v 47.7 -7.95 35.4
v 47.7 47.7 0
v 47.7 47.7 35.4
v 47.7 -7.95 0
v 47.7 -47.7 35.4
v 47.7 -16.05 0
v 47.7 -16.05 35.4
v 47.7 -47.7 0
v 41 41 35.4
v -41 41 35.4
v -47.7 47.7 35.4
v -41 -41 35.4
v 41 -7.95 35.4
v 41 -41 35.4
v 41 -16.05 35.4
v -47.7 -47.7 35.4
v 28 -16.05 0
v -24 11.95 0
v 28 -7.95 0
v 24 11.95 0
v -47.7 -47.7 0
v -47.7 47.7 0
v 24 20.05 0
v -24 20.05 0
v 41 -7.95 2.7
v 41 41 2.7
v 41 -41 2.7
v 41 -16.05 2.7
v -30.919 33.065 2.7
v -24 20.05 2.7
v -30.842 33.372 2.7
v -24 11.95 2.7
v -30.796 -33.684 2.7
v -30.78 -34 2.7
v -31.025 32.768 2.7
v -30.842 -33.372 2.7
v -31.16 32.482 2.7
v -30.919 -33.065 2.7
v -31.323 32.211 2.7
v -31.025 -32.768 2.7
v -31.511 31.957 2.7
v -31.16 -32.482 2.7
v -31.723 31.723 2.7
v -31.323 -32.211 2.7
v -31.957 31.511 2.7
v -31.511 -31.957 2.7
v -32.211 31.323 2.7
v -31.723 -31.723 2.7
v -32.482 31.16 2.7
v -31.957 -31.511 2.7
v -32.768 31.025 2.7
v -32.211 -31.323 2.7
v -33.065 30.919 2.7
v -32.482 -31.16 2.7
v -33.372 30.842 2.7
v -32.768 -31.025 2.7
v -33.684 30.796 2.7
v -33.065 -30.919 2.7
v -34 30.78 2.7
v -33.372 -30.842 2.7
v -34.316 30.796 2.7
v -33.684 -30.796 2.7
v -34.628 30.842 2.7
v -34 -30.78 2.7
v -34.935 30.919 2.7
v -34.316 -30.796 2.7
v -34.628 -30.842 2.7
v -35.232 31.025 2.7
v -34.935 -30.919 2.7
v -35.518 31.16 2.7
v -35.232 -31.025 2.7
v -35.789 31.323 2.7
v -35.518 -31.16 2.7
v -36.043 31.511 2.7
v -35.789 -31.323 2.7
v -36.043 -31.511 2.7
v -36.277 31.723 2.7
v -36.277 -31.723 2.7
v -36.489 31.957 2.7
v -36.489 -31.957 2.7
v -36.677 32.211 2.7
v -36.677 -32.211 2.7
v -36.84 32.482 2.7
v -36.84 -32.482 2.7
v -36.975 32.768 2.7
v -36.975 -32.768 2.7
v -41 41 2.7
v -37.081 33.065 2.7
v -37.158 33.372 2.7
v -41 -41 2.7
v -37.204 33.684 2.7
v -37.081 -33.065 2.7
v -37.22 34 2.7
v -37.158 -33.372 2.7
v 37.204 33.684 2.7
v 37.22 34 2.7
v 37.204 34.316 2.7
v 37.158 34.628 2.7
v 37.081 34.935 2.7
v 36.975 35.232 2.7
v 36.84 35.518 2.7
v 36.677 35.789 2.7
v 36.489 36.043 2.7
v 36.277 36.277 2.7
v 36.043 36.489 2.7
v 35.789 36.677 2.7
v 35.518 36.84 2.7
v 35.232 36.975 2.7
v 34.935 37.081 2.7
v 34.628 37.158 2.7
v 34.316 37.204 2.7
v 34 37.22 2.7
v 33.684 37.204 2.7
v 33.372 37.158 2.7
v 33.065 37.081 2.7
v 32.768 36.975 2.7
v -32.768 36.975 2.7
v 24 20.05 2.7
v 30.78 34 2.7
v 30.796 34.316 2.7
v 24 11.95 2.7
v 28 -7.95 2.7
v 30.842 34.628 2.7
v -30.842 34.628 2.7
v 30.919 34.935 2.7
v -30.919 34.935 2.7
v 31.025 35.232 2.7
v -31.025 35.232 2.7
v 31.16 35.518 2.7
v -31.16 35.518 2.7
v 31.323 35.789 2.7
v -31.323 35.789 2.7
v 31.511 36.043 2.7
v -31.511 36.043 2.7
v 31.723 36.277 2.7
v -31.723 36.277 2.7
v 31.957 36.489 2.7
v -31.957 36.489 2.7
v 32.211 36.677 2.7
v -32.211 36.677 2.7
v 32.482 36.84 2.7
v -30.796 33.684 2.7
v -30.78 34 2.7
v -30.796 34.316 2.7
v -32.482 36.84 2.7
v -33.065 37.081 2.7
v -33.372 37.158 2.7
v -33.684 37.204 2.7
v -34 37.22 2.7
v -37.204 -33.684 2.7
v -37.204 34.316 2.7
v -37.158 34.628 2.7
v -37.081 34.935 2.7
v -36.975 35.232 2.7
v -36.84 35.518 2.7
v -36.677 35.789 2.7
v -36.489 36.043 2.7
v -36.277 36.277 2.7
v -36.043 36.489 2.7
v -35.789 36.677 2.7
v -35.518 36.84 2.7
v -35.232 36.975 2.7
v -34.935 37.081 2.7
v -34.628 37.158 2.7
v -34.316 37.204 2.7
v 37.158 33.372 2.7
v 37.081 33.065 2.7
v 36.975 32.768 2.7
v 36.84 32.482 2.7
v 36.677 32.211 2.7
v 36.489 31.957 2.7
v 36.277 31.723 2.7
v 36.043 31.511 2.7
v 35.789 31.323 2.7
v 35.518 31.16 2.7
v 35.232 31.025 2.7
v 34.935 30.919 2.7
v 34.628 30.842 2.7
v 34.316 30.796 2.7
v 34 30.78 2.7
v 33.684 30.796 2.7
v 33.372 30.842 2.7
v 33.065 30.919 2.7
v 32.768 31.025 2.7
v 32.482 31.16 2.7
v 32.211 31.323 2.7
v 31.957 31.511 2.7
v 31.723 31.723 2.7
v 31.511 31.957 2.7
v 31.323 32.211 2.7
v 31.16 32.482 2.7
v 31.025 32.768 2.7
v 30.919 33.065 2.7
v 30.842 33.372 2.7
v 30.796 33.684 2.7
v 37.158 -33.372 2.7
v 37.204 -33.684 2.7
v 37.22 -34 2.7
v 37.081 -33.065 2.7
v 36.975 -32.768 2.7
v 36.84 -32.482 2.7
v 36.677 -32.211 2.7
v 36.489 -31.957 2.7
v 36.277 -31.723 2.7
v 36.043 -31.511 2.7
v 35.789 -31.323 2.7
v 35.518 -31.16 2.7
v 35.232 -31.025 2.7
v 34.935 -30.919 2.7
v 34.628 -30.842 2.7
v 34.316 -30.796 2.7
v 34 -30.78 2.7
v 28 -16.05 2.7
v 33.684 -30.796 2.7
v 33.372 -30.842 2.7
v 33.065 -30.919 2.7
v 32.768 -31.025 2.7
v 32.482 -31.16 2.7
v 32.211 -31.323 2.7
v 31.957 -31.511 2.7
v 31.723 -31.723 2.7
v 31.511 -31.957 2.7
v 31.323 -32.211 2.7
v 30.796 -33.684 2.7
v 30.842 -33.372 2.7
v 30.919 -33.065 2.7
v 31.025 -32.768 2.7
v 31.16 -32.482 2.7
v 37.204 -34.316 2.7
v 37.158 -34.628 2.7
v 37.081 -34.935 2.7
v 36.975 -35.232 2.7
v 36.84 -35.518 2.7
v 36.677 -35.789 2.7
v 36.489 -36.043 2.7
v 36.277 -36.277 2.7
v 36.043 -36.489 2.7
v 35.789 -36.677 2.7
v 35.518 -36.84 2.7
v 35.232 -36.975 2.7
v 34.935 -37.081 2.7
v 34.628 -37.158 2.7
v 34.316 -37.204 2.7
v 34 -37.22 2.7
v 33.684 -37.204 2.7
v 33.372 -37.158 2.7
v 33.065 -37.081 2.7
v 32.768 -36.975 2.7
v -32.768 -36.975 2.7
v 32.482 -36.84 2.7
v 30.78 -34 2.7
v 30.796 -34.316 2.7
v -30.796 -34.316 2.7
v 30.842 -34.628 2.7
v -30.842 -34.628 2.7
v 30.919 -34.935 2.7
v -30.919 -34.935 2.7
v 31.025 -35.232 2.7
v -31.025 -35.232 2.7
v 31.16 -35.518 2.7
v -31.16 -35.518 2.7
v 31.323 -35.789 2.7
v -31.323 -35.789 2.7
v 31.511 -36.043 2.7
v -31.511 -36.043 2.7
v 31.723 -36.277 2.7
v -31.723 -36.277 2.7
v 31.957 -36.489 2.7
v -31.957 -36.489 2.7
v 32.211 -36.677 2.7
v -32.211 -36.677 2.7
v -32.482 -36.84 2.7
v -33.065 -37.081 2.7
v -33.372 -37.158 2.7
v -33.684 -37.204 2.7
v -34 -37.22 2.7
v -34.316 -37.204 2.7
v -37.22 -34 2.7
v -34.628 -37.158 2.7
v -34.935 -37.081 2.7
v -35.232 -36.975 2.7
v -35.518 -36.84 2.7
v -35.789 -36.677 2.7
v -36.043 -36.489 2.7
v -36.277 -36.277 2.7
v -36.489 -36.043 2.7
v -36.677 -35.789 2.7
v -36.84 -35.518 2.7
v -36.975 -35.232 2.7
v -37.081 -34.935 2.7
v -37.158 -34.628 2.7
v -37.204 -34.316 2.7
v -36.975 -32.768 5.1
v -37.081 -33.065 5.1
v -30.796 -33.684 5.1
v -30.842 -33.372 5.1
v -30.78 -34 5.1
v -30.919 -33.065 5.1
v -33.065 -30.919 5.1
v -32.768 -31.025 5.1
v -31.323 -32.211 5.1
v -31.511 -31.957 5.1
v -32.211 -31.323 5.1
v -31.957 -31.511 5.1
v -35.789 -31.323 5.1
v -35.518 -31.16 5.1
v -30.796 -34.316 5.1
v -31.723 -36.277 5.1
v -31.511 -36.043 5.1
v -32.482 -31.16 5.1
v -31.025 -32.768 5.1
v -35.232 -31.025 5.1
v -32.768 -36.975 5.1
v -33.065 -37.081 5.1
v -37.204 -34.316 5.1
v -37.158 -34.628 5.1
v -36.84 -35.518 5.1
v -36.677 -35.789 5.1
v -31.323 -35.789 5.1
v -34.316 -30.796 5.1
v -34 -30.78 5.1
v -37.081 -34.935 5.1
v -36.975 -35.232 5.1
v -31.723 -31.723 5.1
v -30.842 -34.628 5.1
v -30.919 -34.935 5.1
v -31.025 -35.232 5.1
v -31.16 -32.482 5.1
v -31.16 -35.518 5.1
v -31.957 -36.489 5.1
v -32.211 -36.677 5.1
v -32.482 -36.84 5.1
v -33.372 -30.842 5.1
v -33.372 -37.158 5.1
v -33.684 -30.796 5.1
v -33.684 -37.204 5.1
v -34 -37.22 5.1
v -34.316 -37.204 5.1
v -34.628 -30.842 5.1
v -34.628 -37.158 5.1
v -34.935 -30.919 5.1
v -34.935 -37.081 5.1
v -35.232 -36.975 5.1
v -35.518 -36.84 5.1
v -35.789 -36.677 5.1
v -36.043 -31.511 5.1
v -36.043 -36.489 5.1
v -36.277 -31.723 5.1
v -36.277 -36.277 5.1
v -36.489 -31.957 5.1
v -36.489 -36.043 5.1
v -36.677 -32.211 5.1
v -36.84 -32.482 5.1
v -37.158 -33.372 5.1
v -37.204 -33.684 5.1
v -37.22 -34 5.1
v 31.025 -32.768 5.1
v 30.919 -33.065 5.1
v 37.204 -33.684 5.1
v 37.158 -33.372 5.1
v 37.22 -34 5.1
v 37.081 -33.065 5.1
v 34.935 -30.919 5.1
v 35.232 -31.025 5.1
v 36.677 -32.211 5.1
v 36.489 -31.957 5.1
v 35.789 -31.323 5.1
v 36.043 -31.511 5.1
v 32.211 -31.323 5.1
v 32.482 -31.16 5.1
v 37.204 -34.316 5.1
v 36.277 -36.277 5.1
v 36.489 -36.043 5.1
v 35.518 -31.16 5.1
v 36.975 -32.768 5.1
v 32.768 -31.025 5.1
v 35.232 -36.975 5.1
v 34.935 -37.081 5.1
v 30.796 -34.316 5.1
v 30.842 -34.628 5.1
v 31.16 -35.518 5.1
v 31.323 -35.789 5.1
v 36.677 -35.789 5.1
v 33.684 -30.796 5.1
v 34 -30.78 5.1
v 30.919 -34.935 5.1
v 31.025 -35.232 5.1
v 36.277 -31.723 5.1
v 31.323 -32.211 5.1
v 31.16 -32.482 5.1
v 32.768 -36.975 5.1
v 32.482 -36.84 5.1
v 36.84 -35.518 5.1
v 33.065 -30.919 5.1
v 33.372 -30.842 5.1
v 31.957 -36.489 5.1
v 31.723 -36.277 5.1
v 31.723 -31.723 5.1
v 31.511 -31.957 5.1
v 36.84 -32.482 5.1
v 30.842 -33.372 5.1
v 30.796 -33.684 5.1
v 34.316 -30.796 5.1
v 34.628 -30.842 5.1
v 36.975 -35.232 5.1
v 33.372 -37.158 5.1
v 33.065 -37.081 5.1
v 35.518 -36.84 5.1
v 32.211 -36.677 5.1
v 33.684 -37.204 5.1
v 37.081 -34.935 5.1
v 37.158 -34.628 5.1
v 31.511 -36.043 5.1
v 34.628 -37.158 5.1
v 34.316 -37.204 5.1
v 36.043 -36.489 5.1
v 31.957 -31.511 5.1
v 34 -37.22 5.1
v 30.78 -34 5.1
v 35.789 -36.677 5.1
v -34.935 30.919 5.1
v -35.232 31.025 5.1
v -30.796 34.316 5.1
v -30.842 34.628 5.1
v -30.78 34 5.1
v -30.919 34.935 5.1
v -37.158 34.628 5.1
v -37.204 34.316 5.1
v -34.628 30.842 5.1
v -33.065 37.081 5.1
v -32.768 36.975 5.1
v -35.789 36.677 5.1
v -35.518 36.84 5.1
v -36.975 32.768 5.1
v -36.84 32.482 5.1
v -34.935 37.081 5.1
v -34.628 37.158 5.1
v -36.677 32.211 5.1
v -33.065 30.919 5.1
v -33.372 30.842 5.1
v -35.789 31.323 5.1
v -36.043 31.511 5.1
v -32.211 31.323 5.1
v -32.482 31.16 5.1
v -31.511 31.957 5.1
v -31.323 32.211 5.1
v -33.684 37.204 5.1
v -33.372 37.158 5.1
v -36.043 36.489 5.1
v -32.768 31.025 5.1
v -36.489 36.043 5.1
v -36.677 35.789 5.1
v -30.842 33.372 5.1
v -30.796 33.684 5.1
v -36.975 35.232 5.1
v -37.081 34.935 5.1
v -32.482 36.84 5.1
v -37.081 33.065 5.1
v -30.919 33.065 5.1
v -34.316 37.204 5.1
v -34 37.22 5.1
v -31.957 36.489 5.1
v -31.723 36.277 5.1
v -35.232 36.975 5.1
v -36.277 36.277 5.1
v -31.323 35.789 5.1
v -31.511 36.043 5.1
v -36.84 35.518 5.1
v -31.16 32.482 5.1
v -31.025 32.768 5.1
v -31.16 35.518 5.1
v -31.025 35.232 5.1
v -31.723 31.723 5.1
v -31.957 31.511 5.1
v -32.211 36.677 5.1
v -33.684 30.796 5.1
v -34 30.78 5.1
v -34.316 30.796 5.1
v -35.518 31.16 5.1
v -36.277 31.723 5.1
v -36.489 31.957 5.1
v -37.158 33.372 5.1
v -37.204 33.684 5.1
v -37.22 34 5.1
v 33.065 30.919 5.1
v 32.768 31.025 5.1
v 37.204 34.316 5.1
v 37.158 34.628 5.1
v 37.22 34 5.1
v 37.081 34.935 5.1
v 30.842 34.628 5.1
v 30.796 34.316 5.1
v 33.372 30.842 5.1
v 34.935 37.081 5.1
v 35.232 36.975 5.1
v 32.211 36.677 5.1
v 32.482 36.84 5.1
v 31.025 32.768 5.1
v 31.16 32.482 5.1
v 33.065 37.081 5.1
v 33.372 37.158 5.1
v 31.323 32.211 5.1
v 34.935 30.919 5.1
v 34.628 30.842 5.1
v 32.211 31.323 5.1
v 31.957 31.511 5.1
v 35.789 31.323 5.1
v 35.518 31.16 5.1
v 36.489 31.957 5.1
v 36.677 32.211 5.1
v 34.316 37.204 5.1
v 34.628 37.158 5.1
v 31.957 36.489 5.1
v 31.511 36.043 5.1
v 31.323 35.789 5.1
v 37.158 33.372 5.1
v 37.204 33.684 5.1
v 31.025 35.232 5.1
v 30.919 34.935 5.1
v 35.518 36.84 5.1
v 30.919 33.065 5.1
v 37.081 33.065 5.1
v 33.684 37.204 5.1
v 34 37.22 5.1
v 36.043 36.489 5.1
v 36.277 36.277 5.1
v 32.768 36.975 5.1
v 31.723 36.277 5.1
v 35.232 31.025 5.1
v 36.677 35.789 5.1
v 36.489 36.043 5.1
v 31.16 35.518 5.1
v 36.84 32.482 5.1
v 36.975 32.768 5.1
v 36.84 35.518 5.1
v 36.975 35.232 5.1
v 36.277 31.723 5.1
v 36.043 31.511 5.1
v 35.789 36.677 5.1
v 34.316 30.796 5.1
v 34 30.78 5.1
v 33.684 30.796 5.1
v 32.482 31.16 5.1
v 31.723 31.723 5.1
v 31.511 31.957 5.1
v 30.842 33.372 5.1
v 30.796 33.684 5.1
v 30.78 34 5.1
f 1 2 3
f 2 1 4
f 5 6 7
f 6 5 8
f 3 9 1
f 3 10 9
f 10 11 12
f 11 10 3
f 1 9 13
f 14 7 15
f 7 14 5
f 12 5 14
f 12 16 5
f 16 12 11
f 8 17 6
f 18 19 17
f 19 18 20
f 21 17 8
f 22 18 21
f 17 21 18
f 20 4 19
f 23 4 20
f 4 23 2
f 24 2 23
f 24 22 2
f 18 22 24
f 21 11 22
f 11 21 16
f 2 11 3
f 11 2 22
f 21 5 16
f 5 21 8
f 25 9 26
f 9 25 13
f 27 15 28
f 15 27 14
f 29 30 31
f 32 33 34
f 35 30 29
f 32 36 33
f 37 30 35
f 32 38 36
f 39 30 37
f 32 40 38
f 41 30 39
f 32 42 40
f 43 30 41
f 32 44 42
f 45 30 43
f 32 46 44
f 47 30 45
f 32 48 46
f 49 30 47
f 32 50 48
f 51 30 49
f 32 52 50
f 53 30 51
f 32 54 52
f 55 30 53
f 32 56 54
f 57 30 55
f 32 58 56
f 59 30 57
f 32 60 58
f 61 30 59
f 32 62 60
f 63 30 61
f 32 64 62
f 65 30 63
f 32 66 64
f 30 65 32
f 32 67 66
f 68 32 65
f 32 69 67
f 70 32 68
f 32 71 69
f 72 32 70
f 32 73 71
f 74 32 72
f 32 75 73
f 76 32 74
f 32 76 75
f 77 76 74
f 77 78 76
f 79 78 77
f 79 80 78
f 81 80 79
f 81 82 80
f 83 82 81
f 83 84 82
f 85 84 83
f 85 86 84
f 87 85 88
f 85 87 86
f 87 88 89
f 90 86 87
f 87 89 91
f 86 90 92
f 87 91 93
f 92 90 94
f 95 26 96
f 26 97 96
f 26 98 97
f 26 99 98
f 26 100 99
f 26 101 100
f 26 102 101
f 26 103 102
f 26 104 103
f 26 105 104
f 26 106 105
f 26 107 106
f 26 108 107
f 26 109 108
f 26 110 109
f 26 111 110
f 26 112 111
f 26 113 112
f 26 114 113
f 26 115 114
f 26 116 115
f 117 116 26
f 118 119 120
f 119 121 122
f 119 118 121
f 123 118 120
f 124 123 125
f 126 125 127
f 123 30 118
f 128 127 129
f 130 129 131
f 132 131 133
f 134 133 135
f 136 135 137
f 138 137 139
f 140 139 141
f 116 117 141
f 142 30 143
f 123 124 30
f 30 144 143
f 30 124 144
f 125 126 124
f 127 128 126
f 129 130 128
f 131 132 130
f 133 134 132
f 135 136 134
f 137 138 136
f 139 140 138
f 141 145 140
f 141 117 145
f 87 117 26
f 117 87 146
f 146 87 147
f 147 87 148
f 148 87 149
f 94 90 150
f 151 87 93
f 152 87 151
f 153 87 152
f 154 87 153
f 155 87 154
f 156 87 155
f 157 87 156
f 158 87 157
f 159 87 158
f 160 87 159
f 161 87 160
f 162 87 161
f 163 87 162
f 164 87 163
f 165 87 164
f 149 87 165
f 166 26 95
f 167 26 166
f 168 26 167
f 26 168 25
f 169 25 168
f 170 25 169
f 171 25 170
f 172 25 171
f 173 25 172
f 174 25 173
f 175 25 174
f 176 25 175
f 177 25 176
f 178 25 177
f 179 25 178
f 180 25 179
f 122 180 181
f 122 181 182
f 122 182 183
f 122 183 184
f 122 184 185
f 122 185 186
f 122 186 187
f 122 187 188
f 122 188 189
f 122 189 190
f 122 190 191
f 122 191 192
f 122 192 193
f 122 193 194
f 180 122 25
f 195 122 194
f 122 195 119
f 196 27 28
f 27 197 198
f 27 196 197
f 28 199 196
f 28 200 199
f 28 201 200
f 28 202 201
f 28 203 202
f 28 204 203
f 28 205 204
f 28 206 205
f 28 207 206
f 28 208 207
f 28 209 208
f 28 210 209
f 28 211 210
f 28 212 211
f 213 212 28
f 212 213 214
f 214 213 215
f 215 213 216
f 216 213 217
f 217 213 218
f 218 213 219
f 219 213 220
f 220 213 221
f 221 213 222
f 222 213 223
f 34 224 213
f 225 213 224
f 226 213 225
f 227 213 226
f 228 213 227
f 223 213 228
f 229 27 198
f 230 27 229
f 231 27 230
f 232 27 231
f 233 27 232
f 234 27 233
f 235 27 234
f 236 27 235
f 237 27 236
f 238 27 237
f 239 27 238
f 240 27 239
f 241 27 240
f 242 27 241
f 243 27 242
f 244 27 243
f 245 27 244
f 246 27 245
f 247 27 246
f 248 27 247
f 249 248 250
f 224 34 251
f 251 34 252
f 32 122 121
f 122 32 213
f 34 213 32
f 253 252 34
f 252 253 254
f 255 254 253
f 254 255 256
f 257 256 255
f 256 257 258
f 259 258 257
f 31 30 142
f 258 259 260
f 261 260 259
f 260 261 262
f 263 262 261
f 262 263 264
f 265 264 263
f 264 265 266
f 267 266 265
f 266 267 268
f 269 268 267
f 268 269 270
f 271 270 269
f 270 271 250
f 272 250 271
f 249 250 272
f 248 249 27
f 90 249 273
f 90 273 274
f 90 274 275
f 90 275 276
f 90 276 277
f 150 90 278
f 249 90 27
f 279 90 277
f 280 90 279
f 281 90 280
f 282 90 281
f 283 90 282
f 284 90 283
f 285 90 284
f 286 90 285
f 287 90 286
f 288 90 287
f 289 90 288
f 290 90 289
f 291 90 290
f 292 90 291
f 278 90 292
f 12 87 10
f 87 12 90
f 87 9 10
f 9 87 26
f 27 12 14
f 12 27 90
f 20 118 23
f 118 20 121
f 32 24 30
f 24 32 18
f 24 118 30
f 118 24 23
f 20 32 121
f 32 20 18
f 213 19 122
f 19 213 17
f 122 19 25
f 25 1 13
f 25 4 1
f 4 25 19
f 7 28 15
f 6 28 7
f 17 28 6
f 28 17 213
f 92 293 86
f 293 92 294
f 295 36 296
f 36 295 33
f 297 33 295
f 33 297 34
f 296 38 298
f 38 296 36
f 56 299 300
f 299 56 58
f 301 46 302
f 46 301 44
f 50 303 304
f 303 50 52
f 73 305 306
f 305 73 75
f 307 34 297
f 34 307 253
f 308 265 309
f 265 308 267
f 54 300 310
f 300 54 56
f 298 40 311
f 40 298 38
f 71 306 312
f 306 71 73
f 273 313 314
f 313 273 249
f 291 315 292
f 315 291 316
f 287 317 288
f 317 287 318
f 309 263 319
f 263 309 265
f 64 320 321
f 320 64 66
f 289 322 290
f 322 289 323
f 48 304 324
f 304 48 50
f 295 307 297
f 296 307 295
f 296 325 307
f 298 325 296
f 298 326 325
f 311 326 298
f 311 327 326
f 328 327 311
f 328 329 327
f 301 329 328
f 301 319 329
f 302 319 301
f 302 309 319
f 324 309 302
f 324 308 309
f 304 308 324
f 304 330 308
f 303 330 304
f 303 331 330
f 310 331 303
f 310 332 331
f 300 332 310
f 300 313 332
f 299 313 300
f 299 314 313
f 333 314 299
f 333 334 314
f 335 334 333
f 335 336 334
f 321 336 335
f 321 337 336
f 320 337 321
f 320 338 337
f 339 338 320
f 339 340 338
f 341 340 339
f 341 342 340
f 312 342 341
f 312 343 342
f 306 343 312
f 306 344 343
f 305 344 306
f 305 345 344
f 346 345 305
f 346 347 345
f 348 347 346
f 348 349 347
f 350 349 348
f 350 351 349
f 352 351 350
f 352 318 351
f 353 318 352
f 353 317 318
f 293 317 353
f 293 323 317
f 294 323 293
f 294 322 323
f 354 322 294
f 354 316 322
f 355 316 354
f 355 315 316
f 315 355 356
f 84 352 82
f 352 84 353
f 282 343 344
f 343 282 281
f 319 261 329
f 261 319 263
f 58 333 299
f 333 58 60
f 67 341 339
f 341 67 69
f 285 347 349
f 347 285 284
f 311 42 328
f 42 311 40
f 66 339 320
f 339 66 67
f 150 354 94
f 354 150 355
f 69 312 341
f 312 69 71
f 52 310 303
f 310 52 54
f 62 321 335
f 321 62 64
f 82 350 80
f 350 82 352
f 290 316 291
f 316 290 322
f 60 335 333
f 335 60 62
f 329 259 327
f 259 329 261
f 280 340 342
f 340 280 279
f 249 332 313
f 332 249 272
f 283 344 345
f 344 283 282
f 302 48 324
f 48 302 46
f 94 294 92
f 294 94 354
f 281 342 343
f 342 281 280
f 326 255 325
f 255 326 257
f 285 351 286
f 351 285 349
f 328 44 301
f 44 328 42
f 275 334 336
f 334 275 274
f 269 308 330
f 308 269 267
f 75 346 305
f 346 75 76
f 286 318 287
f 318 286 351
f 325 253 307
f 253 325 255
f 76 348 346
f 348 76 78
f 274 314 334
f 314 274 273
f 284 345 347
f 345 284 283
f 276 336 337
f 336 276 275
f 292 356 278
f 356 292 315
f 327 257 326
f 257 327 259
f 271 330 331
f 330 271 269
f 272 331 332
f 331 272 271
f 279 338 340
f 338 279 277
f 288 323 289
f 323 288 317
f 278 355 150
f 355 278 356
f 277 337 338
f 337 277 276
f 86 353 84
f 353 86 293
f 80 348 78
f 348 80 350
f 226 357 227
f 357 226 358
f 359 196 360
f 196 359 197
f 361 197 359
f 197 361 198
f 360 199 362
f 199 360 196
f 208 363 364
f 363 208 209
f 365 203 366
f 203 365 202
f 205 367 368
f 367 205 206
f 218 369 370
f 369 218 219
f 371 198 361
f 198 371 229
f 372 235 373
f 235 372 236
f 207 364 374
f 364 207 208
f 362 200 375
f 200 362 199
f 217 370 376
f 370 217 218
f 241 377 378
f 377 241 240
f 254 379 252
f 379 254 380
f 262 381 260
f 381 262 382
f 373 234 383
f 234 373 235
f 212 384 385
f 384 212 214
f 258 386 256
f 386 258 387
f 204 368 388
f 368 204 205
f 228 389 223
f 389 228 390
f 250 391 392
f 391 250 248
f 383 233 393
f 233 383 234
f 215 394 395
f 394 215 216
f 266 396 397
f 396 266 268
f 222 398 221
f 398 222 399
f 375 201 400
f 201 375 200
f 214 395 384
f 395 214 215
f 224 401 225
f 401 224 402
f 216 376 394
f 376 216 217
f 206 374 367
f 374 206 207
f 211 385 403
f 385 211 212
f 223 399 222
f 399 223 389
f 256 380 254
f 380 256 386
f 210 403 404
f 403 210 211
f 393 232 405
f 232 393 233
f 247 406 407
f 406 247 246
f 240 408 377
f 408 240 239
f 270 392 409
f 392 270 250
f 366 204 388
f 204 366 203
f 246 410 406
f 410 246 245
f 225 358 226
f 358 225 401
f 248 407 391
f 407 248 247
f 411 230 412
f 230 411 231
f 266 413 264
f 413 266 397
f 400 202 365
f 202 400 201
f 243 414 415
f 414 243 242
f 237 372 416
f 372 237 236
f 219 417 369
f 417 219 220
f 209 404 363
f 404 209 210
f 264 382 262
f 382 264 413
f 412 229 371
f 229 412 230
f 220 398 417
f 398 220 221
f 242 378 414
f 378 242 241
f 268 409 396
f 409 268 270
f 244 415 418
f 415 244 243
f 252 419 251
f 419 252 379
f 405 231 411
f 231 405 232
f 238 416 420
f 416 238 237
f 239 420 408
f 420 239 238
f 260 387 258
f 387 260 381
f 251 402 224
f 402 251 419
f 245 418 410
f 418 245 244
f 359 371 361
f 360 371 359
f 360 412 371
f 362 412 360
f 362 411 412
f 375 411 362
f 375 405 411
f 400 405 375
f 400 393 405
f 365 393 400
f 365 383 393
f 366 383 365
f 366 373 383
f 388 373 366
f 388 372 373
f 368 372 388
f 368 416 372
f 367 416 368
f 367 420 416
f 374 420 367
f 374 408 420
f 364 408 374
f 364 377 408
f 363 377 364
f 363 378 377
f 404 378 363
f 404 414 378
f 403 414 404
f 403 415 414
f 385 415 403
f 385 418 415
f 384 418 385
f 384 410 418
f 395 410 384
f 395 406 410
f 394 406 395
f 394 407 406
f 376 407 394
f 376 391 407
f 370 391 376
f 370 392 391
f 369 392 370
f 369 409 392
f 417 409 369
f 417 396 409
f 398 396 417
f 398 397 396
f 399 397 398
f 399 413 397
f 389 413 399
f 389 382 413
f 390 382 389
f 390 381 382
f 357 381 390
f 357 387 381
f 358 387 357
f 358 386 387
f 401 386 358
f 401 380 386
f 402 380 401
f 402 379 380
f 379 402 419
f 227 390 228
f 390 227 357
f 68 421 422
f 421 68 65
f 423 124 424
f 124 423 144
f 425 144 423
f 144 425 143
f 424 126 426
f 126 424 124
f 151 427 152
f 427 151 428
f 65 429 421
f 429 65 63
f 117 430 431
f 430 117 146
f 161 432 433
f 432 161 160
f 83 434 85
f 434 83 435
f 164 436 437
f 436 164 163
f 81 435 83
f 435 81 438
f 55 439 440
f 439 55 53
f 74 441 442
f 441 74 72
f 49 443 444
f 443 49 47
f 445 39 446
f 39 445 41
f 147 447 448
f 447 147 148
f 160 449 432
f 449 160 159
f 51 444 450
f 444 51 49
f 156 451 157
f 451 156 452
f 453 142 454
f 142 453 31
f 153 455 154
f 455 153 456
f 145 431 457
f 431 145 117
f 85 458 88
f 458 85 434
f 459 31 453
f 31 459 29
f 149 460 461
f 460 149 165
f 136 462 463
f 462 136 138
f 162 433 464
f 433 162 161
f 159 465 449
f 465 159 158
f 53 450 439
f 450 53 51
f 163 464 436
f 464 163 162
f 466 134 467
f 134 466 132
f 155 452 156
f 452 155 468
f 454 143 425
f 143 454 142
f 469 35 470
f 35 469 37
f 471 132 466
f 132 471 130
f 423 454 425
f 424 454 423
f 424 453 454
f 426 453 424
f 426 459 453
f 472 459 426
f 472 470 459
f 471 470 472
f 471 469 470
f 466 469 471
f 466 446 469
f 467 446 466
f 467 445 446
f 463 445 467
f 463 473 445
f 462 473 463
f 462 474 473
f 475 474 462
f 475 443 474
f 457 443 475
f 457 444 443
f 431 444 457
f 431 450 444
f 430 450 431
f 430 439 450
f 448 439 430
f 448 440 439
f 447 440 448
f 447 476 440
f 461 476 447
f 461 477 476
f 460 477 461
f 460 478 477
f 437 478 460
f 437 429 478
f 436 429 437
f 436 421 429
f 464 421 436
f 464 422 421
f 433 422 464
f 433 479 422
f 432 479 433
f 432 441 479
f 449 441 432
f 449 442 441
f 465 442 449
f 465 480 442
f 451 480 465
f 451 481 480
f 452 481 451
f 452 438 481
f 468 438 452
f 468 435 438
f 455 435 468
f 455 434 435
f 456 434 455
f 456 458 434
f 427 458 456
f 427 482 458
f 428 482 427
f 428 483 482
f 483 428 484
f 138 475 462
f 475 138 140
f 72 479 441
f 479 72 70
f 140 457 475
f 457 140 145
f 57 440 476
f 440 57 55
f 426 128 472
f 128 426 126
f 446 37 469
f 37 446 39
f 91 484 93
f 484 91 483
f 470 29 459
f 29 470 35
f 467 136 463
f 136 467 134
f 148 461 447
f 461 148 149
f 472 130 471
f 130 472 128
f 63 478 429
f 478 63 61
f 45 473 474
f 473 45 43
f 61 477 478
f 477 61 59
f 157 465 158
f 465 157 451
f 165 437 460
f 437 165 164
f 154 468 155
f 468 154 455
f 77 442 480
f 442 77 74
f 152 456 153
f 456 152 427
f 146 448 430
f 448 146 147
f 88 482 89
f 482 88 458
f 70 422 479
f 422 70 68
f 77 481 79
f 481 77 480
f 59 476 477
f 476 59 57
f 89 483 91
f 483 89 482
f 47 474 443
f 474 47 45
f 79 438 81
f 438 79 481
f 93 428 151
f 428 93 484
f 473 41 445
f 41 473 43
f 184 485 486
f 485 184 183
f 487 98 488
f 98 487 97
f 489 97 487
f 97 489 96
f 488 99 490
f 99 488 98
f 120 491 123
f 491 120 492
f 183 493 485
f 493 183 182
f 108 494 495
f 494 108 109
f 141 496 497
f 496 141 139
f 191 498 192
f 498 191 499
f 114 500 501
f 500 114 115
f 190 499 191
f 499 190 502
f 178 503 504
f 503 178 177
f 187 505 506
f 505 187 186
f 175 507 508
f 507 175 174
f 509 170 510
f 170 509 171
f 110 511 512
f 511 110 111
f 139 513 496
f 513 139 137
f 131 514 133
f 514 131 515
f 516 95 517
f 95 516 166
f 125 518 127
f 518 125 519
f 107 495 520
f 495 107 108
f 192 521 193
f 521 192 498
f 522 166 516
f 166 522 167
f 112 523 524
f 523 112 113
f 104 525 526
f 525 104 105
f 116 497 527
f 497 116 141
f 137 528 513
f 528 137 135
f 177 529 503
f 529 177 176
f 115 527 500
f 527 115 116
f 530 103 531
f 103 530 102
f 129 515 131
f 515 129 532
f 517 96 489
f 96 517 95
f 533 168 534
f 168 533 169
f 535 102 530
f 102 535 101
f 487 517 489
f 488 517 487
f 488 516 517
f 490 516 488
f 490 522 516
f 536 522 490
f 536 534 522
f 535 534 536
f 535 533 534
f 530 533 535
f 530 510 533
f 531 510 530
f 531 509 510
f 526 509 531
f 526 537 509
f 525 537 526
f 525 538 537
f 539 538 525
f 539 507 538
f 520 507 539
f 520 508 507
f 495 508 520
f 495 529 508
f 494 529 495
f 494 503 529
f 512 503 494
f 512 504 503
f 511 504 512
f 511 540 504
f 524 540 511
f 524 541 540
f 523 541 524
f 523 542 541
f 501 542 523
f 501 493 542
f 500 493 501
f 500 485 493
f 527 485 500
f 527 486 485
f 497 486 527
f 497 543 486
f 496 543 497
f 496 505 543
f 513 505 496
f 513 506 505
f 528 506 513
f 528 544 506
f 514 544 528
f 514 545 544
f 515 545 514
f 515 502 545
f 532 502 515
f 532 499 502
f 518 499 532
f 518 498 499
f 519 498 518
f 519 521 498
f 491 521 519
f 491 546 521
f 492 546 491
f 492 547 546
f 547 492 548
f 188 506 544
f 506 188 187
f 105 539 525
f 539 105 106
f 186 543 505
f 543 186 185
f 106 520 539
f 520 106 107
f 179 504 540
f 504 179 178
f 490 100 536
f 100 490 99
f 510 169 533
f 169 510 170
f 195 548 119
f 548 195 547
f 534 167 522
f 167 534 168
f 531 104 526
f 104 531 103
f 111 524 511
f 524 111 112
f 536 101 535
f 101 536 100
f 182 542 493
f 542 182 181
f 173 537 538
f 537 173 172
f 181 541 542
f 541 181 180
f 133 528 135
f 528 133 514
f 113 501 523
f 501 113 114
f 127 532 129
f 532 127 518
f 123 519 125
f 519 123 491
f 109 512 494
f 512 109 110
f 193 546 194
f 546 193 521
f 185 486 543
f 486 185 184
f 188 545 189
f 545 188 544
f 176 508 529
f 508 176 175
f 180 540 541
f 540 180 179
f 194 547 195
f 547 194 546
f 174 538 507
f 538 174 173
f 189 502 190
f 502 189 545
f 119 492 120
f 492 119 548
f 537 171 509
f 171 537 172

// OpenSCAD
// Task 10: GNSS antenna keepout enclosure flow
// OpenSCAD stage generated from 01_kicad_mechanical_map.csv.
$fn = 64;
board = [82.000, 82.000, 1.200];
enclosure = [95.400, 95.400, 35.400];
wall = 2.700;
lid_clearance = 7.500;

module standoff(x, y) {
  translate([x, y, board[2]]) cylinder(d=6.440, h=wall + board[2]);
}
module keepout_window(x, y, r) {
  translate([x, y, enclosure[2]/2]) cube([2*r, wall*3, enclosure[2]], center=true);
}
module enclosure_shell() {
  difference() {
    translate([-enclosure[0]/2, -enclosure[1]/2, 0]) cube(enclosure);
    translate([-board[0]/2, -board[1]/2, wall]) cube([board[0], board[1], enclosure[2]]);
    // A1 PATCH_ANTENNA side/service keepout
    keepout_window(0.000, 16.000, 24.000);
    // J1 SMA_EDGE side/service keepout
    keepout_window(40.000, -12.000, 12.000);
  }
}
// MH1 copied from KiCad at (-34.000, -34.000)
// MH2 copied from KiCad at (34.000, -34.000)
// MH3 copied from KiCad at (-34.000, 34.000)
// MH4 copied from KiCad at (34.000, 34.000)
union() {
  enclosure_shell();
  standoff(-34.000, -34.000);
  standoff(34.000, -34.000);
  standoff(-34.000, 34.000);
  standoff(34.000, 34.000);
}
